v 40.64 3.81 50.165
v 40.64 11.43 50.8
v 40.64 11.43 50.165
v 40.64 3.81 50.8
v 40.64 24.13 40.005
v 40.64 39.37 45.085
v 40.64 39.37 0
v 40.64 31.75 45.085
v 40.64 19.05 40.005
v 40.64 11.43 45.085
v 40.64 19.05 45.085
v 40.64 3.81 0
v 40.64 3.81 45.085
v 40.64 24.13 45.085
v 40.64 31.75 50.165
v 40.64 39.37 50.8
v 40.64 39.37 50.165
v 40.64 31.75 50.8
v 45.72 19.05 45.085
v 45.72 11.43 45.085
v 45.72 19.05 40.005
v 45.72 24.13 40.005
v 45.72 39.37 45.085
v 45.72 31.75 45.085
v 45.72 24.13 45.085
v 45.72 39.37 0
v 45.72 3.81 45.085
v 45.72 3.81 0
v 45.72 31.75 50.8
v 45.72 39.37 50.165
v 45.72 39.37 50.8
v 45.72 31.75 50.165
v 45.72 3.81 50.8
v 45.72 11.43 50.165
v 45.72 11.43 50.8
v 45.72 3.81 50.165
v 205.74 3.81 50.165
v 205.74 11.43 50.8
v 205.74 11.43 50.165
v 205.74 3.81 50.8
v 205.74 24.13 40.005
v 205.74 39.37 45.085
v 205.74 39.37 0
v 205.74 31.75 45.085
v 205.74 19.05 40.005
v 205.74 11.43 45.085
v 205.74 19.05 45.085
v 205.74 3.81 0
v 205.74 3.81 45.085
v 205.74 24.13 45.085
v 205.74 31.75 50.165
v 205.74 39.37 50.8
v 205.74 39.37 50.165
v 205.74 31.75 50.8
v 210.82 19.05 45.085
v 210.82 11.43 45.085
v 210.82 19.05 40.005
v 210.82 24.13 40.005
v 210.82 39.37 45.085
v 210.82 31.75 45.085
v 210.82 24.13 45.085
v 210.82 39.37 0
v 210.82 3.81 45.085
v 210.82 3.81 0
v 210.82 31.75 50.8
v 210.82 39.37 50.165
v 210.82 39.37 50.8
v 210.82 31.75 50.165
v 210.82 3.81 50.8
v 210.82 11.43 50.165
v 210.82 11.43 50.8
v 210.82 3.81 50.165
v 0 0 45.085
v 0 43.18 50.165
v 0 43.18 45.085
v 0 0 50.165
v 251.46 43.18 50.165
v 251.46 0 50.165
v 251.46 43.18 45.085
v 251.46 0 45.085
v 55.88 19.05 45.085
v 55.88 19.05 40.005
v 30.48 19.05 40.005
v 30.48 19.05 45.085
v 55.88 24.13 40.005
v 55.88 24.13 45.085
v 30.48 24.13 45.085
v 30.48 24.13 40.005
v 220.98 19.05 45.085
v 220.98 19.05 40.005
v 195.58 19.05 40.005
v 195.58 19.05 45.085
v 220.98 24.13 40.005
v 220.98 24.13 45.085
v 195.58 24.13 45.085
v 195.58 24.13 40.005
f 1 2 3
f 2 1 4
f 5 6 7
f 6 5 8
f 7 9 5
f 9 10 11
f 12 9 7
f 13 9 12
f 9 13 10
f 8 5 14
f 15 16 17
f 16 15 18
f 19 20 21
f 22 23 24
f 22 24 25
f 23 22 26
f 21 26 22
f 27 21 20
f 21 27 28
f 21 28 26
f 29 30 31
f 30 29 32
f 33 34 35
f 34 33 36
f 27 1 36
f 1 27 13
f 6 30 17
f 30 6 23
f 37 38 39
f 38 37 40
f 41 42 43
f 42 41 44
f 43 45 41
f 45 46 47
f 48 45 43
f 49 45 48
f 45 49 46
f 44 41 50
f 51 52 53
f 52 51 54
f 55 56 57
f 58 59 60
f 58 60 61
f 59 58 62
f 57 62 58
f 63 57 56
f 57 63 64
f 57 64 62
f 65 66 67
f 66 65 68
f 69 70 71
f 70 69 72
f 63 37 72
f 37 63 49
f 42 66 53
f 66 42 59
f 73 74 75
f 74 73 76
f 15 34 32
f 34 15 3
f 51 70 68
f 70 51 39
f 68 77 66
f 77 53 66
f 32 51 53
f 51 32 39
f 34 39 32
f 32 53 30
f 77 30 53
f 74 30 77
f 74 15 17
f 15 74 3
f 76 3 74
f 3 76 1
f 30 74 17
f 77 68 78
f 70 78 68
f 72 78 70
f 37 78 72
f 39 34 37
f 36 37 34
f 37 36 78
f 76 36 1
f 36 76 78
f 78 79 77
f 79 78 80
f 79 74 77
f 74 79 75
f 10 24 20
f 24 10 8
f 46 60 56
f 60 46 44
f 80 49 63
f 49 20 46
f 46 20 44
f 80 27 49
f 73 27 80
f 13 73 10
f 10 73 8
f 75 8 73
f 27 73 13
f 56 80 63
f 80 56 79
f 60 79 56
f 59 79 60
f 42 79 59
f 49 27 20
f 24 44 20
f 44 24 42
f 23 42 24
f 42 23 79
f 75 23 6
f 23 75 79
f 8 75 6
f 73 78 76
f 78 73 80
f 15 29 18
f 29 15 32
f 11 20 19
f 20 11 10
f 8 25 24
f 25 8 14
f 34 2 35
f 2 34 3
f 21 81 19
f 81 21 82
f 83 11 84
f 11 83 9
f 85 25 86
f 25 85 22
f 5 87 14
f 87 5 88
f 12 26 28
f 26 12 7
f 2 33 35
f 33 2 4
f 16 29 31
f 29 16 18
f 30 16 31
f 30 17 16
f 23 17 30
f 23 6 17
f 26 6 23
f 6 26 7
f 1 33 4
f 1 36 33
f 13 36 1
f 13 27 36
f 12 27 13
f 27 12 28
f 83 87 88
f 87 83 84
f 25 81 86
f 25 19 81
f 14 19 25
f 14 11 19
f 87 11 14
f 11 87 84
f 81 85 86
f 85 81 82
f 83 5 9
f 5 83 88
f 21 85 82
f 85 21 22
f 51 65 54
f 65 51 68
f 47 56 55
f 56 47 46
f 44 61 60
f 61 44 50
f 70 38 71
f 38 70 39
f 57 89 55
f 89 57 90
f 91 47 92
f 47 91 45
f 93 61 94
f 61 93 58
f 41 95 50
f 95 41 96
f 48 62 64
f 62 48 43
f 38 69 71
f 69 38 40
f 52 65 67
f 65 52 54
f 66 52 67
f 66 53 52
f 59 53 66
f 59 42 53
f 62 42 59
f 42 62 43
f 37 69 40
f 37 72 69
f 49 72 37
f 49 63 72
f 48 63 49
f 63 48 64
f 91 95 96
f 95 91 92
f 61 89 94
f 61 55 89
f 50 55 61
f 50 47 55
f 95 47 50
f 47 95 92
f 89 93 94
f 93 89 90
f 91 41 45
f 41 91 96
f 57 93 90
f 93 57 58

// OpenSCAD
// file: print_vars.scad
/**
 * @file print_vars.scad
 * @brief TODO.
 *
 * To use:
 *
 * Depends on:
 *
 */

// modules

// constants

module print_vars()
{
    echo("-----------------------------------");
    echo(SHELF_BOARD_LENGTH = SHELF_BOARD_LENGTH);
    echo(INCHES = cm_to_in(SHELF_BOARD_LENGTH));

    echo("-----------------------------------");
    echo(SHELF_BOARD_WIDTH = SHELF_BOARD_WIDTH);
    echo(INCHES = cm_to_in(SHELF_BOARD_WIDTH));

    echo("-----------------------------------");
    echo(SHELF_BOARD_THICKNESS = SHELF_BOARD_THICKNESS);
    echo(INCHES = cm_to_in(SHELF_BOARD_THICKNESS));

    echo("-----------------------------------");
    echo(SUPPORT_BOARD_LENGTH = SUPPORT_BOARD_LENGTH);
    echo(INCHES = cm_to_in(SUPPORT_BOARD_LENGTH));

    echo("-----------------------------------");
    echo(SUPPORT_BOARD_WIDTH = SUPPORT_BOARD_WIDTH);
    echo(INCHES = cm_to_in(SUPPORT_BOARD_WIDTH));

    echo("-----------------------------------");
    echo(SUPPORT_BOARD_THICKNESS = SUPPORT_BOARD_THICKNESS);
    echo(INCHES = cm_to_in(SUPPORT_BOARD_THICKNESS));

    echo("-----------------------------------");
    echo(CROSS_BOARD_LENGTH = CROSS_BOARD_LENGTH);
    echo(INCHES = cm_to_in(CROSS_BOARD_LENGTH));

    echo("-----------------------------------");
    echo(CROSS_BOARD_WIDTH = CROSS_BOARD_WIDTH);
    echo(INCHES = cm_to_in(CROSS_BOARD_WIDTH));

    echo("-----------------------------------");
    echo(CROSS_BOARD_THICKNESS = CROSS_BOARD_THICKNESS);
    echo(INCHES = cm_to_in(CROSS_BOARD_THICKNESS));

    echo("-----------------------------------");
    echo(SUPPORT_OFFSET = SUPPORT_OFFSET);
    echo(INCHES = cm_to_in(SUPPORT_OFFSET));

    echo("-----------------------------------");
    echo(SUPPORT_OVERRUN = SUPPORT_OVERRUN);
    echo(INCHES = cm_to_in(SUPPORT_OVERRUN));

    echo("-----------------------------------");
    echo(SUPPORT_TENON_WIDTH = SUPPORT_TENON_WIDTH);
    echo(INCHES = cm_to_in(SUPPORT_TENON_WIDTH));

    echo("-----------------------------------");
}
// file: common/board.scad
// board.scad

BOARD_DEFAULT_LENGTH = 600;
BOARD_DEFAULT_WIDTH = 120;
BOARD_DEFAULT_THICKNESS = 120;

function board_get_default_size()
    = [BOARD_DEFAULT_LENGTH, BOARD_DEFAULT_WIDTH, BOARD_DEFAULT_THICKNESS];

module board(size = board_get_default_size(), center = false)
{
    // size[0] is always with the grain
    // size[1] is against the grain
    // size[2] is the board thickness
    cube(size = size, center = center);
}
// file: common/common_functions.scad
// common_functions.scad

function get_visual_overrun() = 0.1;

function ft_to_cm(ft) = ft * 30.48;

function cm_to_ft(cm) = cm / 30.48;

function in_to_cm(in) = in * 2.54;

function cm_to_in(cm) = cm / 2.54;
// main file
/**
 * @file shelf.scad
 * @brief TODO.
 *
 * units: centimeter
 *
 */

// modules
use <common/common_functions.scad>
use <common/board.scad>

// constants
VISUAL_OVERRUN = get_visual_overrun();

SUPPORT_OFFSET = in_to_cm(16.0);
SUPPORT_OVERRUN = in_to_cm(0.25);
SUPPORT_TENON_WIDTH = in_to_cm(3.0);

SHELF_BOARD_LENGTH = in_to_cm(99.0);
SHELF_BOARD_WIDTH = in_to_cm(17.0);
SHELF_BOARD_THICKNESS = in_to_cm(2.0);

SUPPORT_BOARD_LENGTH = in_to_cm(20);
SUPPORT_BOARD_WIDTH = in_to_cm(14.0);
SUPPORT_BOARD_THICKNESS = in_to_cm(2.0);

CROSS_BOARD_LENGTH = in_to_cm(10.0);
CROSS_BOARD_WIDTH = in_to_cm(2.0);
CROSS_BOARD_THICKNESS = in_to_cm(2.0);

// includes
include <print_vars.scad>

module shelf_board_support_cutouts()
{
    offset_y =
            (SHELF_BOARD_WIDTH / 2)
            - (SUPPORT_BOARD_WIDTH / 2);

    cutout_size = [
            SUPPORT_BOARD_THICKNESS,
            SUPPORT_TENON_WIDTH,
            SHELF_BOARD_THICKNESS
                    + (2 * VISUAL_OVERRUN)];

    translate([0, offset_y, -VISUAL_OVERRUN])
        cube(cutout_size);

    translate([0, offset_y + SUPPORT_BOARD_WIDTH - SUPPORT_TENON_WIDTH, -VISUAL_OVERRUN])
        cube(cutout_size);
}

module shelf_board()
{
    board_size = [
            SHELF_BOARD_LENGTH,
            SHELF_BOARD_WIDTH,
            SHELF_BOARD_THICKNESS];

    difference()
    {
        board(board_size);

        translate([SUPPORT_OFFSET, 0, 0])
            shelf_board_support_cutouts();

        offset_out = SHELF_BOARD_LENGTH - SUPPORT_BOARD_THICKNESS;
        translate([offset_out - SUPPORT_OFFSET, 0, 0])
            shelf_board_support_cutouts();
    }
}

module support_board_cutout()
{
    cutout_size = [
            SUPPORT_BOARD_THICKNESS
                    + (2 * VISUAL_OVERRUN),
            SUPPORT_BOARD_WIDTH
                    - (2 * SUPPORT_TENON_WIDTH),
            SHELF_BOARD_THICKNESS
                    + SUPPORT_OVERRUN
                    + VISUAL_OVERRUN];

    cutout_offset = [
            -VISUAL_OVERRUN,
            SUPPORT_TENON_WIDTH,
            SUPPORT_BOARD_LENGTH
                    - SHELF_BOARD_THICKNESS
                    - SUPPORT_OVERRUN];

    cross_cutout_size = [
            SUPPORT_BOARD_THICKNESS
                    + (2 * VISUAL_OVERRUN),
            CROSS_BOARD_WIDTH,
            (CROSS_BOARD_THICKNESS / 2)
                    + VISUAL_OVERRUN];

    cross_cutout_offset = [
            -VISUAL_OVERRUN,
            (SUPPORT_BOARD_WIDTH / 2)
                    - (CROSS_BOARD_WIDTH / 2),
            SUPPORT_BOARD_LENGTH
                    - SHELF_BOARD_THICKNESS
                    - SUPPORT_OVERRUN
                    - (CROSS_BOARD_THICKNESS / 2)];

    union()
    {
        translate(cutout_offset)
            cube(cutout_size);

        translate(cross_cutout_offset)
            cube(cross_cutout_size);
    }
}

module support_cross_board()
{
    board_size = [
            CROSS_BOARD_LENGTH,
            CROSS_BOARD_WIDTH,
            CROSS_BOARD_THICKNESS];

    board(board_size);
}

module support_board()
{
    board_size = [
            SUPPORT_BOARD_LENGTH,
            SUPPORT_BOARD_WIDTH,
            SUPPORT_BOARD_THICKNESS];

    difference()
    {
        translate([SUPPORT_BOARD_THICKNESS, 0, 0])
            rotate([0, -90, 0])
                board(board_size);

        support_board_cutout();
    }
}

module support_board_assembly()
{
    cross_offset = [
            -(CROSS_BOARD_LENGTH / 2)
                    + (SUPPORT_BOARD_THICKNESS / 2),
            (SUPPORT_BOARD_WIDTH / 2)
                    - (CROSS_BOARD_WIDTH / 2),
            SUPPORT_BOARD_LENGTH
                    - SHELF_BOARD_THICKNESS
                    - SUPPORT_OVERRUN
                    - CROSS_BOARD_THICKNESS];

    support_board();

    translate(cross_offset)
        support_cross_board();
}

module supports_assembly()
{
    offset_x =
            SHELF_BOARD_LENGTH
            - SUPPORT_BOARD_THICKNESS
            - SUPPORT_OFFSET;

    offset_y =
            (SHELF_BOARD_WIDTH / 2)
            - (SUPPORT_BOARD_WIDTH / 2);

    translate([SUPPORT_OFFSET, offset_y, 0])
        support_board_assembly();

    translate([offset_x, offset_y, 0])
        support_board_assembly();
}

module shelf()
{
    color("SandyBrown")
        translate([0, 0, SUPPORT_BOARD_LENGTH - SHELF_BOARD_THICKNESS - SUPPORT_OVERRUN])
            shelf_board();

    color("Peru")
        supports_assembly();
}

shelf();

print_vars();
